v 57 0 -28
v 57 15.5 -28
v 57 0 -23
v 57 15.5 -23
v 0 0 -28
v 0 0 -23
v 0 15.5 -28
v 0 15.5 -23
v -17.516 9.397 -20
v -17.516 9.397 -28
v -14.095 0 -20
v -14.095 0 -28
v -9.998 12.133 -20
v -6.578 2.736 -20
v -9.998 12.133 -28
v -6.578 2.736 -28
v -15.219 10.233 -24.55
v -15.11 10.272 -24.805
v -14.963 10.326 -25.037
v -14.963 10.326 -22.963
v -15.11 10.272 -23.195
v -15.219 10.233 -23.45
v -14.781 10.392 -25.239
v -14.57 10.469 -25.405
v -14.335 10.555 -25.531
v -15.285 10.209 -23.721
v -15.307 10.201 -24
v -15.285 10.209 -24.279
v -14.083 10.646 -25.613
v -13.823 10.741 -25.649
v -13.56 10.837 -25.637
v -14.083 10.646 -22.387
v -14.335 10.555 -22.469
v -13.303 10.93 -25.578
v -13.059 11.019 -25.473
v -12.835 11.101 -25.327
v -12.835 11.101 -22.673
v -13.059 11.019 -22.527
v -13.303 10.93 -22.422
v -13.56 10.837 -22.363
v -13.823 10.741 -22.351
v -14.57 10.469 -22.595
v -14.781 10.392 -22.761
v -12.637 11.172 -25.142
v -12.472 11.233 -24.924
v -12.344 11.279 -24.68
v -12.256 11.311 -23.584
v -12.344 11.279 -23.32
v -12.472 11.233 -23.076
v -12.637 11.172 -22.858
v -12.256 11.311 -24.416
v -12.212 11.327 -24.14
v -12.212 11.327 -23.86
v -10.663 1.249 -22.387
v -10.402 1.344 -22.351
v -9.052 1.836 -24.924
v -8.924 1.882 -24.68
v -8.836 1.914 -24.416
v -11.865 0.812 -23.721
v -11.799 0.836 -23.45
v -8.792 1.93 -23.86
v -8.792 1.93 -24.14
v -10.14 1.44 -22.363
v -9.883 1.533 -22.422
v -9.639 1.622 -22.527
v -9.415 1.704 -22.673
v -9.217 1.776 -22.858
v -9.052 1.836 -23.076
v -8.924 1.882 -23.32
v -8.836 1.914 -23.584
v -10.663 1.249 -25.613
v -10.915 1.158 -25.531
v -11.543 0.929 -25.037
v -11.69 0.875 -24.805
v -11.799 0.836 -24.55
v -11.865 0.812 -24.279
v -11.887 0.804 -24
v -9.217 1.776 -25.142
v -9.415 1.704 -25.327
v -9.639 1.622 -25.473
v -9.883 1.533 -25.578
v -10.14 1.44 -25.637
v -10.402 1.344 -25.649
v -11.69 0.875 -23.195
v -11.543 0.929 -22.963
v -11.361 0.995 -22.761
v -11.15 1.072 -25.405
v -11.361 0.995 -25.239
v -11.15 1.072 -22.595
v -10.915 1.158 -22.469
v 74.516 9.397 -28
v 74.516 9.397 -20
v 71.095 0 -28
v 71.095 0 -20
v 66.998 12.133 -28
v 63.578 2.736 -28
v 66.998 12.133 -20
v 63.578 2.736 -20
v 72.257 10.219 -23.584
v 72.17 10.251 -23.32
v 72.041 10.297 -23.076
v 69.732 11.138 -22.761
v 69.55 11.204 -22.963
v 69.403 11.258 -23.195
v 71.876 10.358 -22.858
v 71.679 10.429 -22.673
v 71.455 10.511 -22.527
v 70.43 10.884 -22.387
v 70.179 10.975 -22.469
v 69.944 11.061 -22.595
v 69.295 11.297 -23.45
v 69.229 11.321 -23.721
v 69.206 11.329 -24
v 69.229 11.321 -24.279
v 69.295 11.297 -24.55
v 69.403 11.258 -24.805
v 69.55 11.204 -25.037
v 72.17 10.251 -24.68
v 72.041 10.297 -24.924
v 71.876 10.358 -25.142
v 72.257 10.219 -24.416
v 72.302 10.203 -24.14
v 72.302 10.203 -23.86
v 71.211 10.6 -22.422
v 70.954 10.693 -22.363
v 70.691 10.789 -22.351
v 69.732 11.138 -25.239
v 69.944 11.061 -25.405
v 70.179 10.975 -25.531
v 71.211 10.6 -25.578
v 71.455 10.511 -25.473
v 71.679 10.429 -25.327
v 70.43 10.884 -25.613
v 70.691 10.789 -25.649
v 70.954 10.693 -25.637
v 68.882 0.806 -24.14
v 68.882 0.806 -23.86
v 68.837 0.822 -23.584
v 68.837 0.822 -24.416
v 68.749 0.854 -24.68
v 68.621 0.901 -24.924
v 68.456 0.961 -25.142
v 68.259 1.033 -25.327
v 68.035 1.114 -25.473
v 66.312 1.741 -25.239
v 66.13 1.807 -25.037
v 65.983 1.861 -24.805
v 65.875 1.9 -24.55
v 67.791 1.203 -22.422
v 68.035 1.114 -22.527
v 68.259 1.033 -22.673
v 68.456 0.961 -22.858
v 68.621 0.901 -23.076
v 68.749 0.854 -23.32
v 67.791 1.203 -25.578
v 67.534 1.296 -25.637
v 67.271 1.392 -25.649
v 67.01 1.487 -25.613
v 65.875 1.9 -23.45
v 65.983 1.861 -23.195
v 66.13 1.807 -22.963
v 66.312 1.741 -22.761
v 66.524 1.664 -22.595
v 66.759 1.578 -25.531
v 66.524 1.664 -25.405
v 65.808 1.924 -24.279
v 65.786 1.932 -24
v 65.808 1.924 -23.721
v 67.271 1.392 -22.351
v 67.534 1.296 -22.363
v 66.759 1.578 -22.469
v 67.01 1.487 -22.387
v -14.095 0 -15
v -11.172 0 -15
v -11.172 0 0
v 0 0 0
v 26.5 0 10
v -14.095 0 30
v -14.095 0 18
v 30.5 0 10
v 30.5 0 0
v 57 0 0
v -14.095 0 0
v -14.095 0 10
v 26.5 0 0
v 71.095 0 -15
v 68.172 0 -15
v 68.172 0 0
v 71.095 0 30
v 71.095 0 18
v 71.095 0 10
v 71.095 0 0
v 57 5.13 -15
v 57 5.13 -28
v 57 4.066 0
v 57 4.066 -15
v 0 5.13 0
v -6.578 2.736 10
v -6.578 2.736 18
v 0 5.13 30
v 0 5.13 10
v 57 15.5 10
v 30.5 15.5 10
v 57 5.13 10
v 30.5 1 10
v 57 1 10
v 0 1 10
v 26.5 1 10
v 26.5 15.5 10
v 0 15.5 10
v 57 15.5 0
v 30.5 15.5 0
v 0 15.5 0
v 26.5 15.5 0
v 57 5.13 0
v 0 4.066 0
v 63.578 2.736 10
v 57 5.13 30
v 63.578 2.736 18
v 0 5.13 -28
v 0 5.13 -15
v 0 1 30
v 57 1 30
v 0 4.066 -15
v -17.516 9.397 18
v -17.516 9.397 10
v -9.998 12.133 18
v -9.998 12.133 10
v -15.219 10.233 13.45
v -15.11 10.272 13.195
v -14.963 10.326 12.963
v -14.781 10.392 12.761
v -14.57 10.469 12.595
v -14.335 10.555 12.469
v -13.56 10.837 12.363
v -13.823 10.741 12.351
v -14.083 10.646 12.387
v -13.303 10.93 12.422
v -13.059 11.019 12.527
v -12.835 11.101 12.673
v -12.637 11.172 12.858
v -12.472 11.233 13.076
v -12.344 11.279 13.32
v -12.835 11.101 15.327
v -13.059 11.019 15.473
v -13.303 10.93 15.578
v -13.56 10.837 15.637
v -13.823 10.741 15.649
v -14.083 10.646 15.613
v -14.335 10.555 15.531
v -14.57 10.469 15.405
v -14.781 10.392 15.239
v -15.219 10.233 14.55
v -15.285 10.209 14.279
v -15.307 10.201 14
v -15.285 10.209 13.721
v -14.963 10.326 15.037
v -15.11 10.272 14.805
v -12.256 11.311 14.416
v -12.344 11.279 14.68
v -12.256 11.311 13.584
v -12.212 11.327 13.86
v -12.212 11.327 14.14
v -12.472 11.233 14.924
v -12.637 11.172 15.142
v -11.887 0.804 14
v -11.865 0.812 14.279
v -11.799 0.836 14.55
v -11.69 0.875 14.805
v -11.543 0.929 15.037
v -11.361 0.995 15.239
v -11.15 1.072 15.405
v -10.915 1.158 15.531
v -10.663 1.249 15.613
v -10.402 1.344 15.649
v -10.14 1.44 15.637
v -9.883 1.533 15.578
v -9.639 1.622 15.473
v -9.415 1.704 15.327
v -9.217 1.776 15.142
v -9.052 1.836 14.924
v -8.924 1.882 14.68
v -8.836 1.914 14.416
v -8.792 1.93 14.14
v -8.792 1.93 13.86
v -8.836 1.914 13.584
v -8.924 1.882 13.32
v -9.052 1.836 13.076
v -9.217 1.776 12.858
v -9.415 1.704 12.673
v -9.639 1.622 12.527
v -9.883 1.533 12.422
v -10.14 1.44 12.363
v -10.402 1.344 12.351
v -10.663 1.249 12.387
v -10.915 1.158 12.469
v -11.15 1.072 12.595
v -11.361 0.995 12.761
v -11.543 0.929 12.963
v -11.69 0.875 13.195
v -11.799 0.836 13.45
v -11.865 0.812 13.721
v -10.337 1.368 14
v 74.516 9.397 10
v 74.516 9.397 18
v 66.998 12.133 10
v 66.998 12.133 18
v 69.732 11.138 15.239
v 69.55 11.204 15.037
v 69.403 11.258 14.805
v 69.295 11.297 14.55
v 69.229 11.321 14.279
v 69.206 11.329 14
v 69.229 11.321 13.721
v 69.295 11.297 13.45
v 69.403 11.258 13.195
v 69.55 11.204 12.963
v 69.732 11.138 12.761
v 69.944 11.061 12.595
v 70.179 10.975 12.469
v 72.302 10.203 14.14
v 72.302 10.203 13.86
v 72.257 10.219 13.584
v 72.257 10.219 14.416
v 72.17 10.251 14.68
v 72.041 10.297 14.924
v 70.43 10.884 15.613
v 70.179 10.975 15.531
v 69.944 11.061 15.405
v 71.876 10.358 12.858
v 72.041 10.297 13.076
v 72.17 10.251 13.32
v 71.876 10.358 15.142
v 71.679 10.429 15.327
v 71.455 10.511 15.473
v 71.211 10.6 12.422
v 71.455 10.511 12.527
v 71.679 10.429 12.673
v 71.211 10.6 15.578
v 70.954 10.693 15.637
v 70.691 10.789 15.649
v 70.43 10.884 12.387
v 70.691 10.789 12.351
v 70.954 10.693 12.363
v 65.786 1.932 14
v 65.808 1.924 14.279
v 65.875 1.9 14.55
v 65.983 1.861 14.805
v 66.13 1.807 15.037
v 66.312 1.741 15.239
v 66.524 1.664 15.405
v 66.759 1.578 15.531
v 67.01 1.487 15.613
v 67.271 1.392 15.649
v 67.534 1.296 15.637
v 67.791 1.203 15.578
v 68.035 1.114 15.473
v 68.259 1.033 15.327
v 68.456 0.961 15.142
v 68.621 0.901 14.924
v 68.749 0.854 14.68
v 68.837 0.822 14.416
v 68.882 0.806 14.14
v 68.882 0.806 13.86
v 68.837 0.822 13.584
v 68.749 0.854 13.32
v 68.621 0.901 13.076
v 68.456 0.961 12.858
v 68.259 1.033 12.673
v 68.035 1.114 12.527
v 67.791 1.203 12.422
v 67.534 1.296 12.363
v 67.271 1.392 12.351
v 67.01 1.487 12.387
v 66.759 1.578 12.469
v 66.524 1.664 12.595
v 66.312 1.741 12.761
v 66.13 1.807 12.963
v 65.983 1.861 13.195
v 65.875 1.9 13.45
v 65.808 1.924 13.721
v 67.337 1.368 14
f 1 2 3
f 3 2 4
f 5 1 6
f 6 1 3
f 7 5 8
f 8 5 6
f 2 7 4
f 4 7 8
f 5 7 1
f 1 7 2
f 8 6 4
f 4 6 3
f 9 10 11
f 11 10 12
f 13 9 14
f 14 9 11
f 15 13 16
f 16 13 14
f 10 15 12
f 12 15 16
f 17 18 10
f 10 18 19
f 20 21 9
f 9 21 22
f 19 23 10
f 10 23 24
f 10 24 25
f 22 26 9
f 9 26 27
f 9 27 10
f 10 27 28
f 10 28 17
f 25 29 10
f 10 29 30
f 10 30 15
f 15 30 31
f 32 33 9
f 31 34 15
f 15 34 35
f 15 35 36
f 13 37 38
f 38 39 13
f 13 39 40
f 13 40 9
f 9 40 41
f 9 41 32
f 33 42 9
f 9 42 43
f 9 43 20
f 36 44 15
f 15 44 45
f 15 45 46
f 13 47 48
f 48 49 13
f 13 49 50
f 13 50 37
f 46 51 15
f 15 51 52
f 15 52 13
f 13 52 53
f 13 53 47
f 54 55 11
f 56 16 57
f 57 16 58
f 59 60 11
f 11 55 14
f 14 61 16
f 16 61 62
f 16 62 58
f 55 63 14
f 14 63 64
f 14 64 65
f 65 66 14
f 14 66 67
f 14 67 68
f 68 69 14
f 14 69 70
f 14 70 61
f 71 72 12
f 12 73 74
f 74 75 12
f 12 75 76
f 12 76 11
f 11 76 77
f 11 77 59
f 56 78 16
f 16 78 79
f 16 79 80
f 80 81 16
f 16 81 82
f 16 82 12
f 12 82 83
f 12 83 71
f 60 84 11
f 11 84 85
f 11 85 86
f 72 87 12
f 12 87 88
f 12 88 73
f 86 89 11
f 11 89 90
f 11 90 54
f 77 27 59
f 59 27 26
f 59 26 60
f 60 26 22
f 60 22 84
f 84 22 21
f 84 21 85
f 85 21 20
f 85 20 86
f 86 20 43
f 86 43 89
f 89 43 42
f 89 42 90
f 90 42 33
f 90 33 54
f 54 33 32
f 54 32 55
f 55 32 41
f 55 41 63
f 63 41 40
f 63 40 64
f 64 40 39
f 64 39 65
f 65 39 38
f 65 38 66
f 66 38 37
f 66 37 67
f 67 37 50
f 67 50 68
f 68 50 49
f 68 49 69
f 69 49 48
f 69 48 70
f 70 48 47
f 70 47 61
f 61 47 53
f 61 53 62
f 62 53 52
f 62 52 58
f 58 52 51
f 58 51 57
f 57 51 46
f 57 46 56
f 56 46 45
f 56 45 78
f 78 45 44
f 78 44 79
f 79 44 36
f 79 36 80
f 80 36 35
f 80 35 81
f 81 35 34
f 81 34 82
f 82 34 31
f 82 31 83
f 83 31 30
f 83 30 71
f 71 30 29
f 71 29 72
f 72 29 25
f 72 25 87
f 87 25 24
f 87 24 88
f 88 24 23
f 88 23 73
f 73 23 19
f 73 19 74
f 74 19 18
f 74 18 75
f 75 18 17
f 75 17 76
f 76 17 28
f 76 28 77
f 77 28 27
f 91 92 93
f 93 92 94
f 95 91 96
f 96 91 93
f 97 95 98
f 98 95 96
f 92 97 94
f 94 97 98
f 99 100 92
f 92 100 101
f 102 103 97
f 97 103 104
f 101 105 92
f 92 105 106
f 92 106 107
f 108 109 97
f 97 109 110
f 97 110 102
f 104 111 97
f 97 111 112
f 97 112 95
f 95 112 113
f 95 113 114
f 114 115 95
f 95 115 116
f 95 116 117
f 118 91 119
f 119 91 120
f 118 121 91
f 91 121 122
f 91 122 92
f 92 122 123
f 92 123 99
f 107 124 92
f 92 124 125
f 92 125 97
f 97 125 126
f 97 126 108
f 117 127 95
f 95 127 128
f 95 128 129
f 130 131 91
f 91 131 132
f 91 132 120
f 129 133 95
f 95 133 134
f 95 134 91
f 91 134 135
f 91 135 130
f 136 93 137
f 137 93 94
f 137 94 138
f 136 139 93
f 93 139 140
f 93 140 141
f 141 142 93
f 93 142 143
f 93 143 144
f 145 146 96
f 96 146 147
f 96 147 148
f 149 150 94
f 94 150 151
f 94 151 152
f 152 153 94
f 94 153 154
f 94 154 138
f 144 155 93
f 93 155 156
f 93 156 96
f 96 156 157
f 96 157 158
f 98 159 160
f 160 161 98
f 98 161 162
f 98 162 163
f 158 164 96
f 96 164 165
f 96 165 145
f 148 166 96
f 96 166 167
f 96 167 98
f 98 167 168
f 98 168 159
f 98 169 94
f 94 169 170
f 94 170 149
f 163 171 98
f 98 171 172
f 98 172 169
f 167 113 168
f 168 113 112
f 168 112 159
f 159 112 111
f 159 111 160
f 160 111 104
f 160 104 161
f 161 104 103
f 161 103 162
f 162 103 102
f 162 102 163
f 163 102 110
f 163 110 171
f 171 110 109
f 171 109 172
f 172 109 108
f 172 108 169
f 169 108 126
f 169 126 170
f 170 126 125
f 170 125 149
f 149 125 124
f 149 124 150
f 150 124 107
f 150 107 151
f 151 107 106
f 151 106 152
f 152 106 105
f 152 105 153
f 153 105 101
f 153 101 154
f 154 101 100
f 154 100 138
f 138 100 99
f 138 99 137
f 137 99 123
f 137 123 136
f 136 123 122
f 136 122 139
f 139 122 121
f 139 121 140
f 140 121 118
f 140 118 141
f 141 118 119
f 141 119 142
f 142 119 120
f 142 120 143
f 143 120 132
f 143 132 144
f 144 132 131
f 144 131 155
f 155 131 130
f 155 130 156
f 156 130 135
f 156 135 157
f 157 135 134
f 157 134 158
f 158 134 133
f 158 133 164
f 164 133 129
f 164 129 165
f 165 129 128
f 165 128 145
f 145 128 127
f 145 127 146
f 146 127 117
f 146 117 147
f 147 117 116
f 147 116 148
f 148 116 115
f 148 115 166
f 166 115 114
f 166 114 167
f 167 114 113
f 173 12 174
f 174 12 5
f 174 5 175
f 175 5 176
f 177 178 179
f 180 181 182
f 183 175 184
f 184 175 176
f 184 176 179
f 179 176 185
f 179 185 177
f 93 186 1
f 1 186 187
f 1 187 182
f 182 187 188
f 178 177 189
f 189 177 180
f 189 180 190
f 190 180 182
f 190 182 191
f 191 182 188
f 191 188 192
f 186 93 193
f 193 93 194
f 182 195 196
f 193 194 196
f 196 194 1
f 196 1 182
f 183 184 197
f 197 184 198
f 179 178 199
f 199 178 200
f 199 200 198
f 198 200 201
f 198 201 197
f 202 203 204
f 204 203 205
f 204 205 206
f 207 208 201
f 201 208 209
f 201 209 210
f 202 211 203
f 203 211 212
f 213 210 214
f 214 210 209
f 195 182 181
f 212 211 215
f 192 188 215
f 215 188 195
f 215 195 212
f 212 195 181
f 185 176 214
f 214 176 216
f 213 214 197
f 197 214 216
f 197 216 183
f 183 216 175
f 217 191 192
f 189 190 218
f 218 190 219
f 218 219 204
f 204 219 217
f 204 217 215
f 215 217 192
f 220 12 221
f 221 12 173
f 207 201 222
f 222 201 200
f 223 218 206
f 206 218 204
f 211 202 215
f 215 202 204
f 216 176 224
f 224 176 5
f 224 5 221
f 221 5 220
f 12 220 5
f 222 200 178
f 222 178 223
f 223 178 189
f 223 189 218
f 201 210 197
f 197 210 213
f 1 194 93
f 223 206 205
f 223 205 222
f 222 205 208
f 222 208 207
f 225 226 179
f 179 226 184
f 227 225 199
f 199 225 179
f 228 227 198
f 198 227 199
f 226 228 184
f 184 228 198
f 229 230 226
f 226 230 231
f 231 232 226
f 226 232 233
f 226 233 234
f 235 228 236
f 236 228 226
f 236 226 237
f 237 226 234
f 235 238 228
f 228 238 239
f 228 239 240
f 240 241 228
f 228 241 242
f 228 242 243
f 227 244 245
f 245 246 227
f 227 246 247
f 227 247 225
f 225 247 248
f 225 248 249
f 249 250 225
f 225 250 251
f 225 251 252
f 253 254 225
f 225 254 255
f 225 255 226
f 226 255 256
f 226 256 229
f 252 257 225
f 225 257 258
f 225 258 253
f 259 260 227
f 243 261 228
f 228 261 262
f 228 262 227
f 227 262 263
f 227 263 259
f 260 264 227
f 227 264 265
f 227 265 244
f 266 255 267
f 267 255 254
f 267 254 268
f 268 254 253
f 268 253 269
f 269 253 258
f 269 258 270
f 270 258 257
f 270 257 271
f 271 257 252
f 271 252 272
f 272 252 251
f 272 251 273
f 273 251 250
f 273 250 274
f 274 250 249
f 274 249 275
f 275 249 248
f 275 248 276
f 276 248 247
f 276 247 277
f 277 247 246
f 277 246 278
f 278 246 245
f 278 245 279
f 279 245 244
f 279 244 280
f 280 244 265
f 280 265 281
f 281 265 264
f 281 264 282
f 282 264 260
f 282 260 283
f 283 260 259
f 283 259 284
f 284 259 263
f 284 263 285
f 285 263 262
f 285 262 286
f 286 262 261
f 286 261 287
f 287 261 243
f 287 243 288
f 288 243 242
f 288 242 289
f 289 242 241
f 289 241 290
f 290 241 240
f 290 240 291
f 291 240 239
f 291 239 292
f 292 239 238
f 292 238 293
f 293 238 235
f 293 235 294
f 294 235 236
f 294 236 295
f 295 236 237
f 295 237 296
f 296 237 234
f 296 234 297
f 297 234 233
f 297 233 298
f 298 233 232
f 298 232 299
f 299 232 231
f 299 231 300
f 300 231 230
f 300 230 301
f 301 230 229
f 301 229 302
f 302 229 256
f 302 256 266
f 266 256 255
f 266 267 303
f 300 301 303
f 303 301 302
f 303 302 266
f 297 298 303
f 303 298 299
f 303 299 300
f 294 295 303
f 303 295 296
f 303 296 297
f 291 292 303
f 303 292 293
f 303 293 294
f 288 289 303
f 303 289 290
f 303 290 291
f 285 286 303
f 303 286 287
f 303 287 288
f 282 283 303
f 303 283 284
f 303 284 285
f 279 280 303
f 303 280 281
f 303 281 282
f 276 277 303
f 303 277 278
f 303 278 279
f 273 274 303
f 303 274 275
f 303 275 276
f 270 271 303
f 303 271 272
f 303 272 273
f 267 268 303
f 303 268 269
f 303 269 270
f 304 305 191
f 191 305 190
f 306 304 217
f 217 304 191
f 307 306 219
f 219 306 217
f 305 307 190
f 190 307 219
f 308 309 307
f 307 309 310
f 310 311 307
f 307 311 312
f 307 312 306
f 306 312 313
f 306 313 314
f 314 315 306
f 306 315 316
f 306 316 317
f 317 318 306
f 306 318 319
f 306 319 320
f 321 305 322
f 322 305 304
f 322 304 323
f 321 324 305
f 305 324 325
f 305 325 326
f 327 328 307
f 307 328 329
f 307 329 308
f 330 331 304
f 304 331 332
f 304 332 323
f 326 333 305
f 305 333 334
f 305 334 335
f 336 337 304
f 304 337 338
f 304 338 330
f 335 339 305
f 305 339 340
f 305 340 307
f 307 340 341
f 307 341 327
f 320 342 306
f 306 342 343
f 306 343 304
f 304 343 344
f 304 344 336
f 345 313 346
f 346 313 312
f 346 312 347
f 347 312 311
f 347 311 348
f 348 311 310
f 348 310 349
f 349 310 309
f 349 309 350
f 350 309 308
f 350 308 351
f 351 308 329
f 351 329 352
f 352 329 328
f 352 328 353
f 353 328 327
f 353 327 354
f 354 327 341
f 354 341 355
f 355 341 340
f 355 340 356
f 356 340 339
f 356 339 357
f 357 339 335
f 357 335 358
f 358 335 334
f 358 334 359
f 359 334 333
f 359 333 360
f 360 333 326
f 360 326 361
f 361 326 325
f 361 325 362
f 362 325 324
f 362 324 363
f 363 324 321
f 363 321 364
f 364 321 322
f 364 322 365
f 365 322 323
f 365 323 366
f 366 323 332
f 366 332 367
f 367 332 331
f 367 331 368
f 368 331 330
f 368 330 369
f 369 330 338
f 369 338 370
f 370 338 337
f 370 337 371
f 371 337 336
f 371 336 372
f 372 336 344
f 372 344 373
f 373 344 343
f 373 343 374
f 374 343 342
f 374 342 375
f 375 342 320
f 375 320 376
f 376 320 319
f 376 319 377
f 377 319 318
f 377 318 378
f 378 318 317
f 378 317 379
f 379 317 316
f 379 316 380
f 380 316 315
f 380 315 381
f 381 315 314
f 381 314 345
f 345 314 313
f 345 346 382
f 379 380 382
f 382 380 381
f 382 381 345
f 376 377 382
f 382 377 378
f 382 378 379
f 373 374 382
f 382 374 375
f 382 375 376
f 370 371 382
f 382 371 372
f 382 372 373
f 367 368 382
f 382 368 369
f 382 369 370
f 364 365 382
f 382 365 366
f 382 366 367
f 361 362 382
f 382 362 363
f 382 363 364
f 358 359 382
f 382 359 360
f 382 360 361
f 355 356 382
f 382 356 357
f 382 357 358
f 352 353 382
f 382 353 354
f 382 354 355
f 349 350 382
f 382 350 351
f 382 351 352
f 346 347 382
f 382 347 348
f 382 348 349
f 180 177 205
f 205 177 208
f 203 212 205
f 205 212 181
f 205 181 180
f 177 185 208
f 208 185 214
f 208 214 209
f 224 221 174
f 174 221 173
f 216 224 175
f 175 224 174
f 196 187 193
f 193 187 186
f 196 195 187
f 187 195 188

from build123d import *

# Parameters (mm, degrees)
BOSS_EXTRUDE1_DEPTH        = 30
BOSS_EXTRUDE1_DEPTH_BACK   = 28
BOSS_EXTRUDE1_2_DEPTH      = 30
BOSS_EXTRUDE1_2_DEPTH_BACK = 28
SKETCH3_W                  = 57
SKETCH3_H                  = 15.5
BOSS_EXTRUDE2_DEPTH        = 10
SKETCH4_W                  = 57
SKETCH4_H                  = 15.5
BOSS_EXTRUDE3_DEPTH        = 5
SKETCH8_W                  = 8
SKETCH8_H                  = 8
BOSS_EXTRUDE7_DEPTH        = 10
SKETCH9_R                  = 1.65
CUT_EXTRUDE1_DEPTH         = 10
SKETCH10_W                 = 8
SKETCH10_H                 = 8
BOSS_EXTRUDE8_DEPTH        = 10
SKETCH11_R                 = 1.65
CUT_EXTRUDE2_DEPTH         = 10
SKETCH12_W                 = 57
SKETCH12_H                 = 20
BOSS_EXTRUDE9_DEPTH        = 1
LPATTERN5_COUNT            = 2
LPATTERN5_PITCH            = 38
LPATTERN6_COUNT            = 2
LPATTERN6_PITCH            = 38
SKETCH13_W                 = 4
SKETCH13_H                 = 10
CUT_EXTRUDE3_DEPTH         = 15.5
SKETCH15_W                 = 15
SKETCH15_H                 = 15
CUT_EXTRUDE4_DEPTH         = 1


with BuildPart() as part:
    # Sketch2 → Boss-Extrude1 (new, two sides: drawn at the far end of the back side and taken through both)
    with BuildSketch(Plane.XY.offset(-BOSS_EXTRUDE1_DEPTH_BACK)):
        Polygon((-14.095389312, 0), (0, 5.13030215), (0, 0), align=None)
    extrude(amount=BOSS_EXTRUDE1_DEPTH + BOSS_EXTRUDE1_DEPTH_BACK)



with BuildPart() as body_2:
    # Sketch2 → Boss-Extrude1 2 (new, two sides: drawn at the far end of the back side and taken through both)
    with BuildSketch(Plane.XY.offset(-BOSS_EXTRUDE1_2_DEPTH_BACK)):
        Polygon((71.095389312, 0), (57, 5.13030215), (57, 0), align=None)
    extrude(amount=BOSS_EXTRUDE1_2_DEPTH + BOSS_EXTRUDE1_2_DEPTH_BACK)


with BuildPart() as part_1:
    add(part.part)

    add(body_2.part)  # Boss-Extrude2 merges body 2
    # Sketch3 → Boss-Extrude2 (add)
    with BuildSketch(Plane.XY):
        with Locations((28.5, 7.75)):
            Rectangle(SKETCH3_W, SKETCH3_H)
    extrude(amount=BOSS_EXTRUDE2_DEPTH)

    # Sketch12 → Boss-Extrude9 (add)
    with BuildSketch(Plane(origin=(0, 0, 0), x_dir=(1, 0, 0), z_dir=(0, 1, 0))):
        with Locations((28.5, -20)):
            Rectangle(SKETCH12_W, SKETCH12_H)
    extrude(amount=BOSS_EXTRUDE9_DEPTH)


with BuildPart() as body_2_2:
    # Sketch4 → Boss-Extrude3 (new body)
    with BuildSketch(Plane.XY.offset(-23)):
        with Locations((28.5, 7.75)):
            Rectangle(SKETCH4_W, SKETCH4_H)
    extrude(amount=-BOSS_EXTRUDE3_DEPTH)


with BuildPart() as body_3:
    # Sketch8 → Boss-Extrude7 (new body)
    with BuildSketch(Plane(origin=(-1.648847328, 4.530170802, 0), x_dir=(0.9396926207859082, 0.3420201433256695, 0), z_dir=(-0.3420201433256695, 0.9396926207859082, 0))):
        with Locations((-9.245333323, 24)):
            Rectangle(SKETCH8_W, SKETCH8_H)
    boss_extrude7 = extrude(amount=BOSS_EXTRUDE7_DEPTH)

    # Sketch9 → Cut-Extrude1 (cut)
    with BuildSketch(Plane(origin=(-5.069048761, 13.92709701, 0), x_dir=(0.9396926207859082, 0.34202014332566943, 0), z_dir=(-0.34202014332566943, 0.9396926207859082, 0))):
        with Locations(Location((-9.245333323, 24, 0), (0, 0, 180))):
            Circle(SKETCH9_R)
    cut_extrude1 = extrude(amount=-CUT_EXTRUDE1_DEPTH, mode=Mode.SUBTRACT)


with BuildPart() as body_4:
    # Sketch10 → Boss-Extrude8 (new body)
    with BuildSketch(Plane(origin=(8.316580699, 22.849617678, 0), x_dir=(0.9396926207859082, -0.34202014332566943, 0), z_dir=(0.34202014332566943, 0.9396926207859083, 0))):
        with Locations((62.807812708, 24)):
            Rectangle(SKETCH10_W, SKETCH10_H)
    boss_extrude8 = extrude(amount=BOSS_EXTRUDE8_DEPTH)

    # Sketch11 → Cut-Extrude2 (cut)
    with BuildSketch(Plane(origin=(11.736782132, 32.246543886, 0), x_dir=(0.9396926207859083, -0.342020143325669, 0), z_dir=(0.342020143325669, 0.9396926207859083, 0))):
        with Locations(Location((62.807812708, 24, 0), (0, 0, 180))):
            Circle(SKETCH11_R)
    cut_extrude2 = extrude(amount=-CUT_EXTRUDE2_DEPTH, mode=Mode.SUBTRACT)


with BuildPart() as part_2:
    add(part_1.part)

    # LPattern5: Boss-Extrude7, Cut-Extrude1 ×2
    with Locations(*[(0, 0, i * LPATTERN5_PITCH) for i in range(1, LPATTERN5_COUNT)]):
        add(boss_extrude7)
        add(cut_extrude1, mode=Mode.SUBTRACT)

    # LPattern6: Boss-Extrude8, Cut-Extrude2 ×2
    with Locations(*[(0, 0, i * LPATTERN6_PITCH) for i in range(1, LPATTERN6_COUNT)]):
        add(boss_extrude8)
        add(cut_extrude2, mode=Mode.SUBTRACT)

    # Sketch13 → Cut-Extrude3 (cut)
    with BuildSketch(Plane(origin=(0, 0, 0), x_dir=(1, 0, 0), z_dir=(0, 1, 0))):
        with Locations((28.5, -5)):
            Rectangle(SKETCH13_W, SKETCH13_H)
    extrude(amount=CUT_EXTRUDE3_DEPTH, mode=Mode.SUBTRACT)

    # Sketch15 → Cut-Extrude4 (cut)
    with BuildSketch(Plane(origin=(-1.648847328, 4.530170802, 0), x_dir=(0.9396926207859082, 0.3420201433256695, 0), z_dir=(-0.3420201433256695, 0.9396926207859082, 0))):
        with Locations((-5.745333323, 7.5)):
            Rectangle(SKETCH15_W, SKETCH15_H)
    cut_extrude4 = extrude(amount=-CUT_EXTRUDE4_DEPTH, mode=Mode.SUBTRACT)

    # Mirror5: Cut-Extrude4 across plane
    add(cut_extrude4.mirror(Plane(origin=(28.5, 0, 0), x_dir=(0, 0, 1), z_dir=(1, 0, 0))), mode=Mode.SUBTRACT)


solid = Compound([body_2_2.part, body_3.part, body_4.part, part_2.part])
